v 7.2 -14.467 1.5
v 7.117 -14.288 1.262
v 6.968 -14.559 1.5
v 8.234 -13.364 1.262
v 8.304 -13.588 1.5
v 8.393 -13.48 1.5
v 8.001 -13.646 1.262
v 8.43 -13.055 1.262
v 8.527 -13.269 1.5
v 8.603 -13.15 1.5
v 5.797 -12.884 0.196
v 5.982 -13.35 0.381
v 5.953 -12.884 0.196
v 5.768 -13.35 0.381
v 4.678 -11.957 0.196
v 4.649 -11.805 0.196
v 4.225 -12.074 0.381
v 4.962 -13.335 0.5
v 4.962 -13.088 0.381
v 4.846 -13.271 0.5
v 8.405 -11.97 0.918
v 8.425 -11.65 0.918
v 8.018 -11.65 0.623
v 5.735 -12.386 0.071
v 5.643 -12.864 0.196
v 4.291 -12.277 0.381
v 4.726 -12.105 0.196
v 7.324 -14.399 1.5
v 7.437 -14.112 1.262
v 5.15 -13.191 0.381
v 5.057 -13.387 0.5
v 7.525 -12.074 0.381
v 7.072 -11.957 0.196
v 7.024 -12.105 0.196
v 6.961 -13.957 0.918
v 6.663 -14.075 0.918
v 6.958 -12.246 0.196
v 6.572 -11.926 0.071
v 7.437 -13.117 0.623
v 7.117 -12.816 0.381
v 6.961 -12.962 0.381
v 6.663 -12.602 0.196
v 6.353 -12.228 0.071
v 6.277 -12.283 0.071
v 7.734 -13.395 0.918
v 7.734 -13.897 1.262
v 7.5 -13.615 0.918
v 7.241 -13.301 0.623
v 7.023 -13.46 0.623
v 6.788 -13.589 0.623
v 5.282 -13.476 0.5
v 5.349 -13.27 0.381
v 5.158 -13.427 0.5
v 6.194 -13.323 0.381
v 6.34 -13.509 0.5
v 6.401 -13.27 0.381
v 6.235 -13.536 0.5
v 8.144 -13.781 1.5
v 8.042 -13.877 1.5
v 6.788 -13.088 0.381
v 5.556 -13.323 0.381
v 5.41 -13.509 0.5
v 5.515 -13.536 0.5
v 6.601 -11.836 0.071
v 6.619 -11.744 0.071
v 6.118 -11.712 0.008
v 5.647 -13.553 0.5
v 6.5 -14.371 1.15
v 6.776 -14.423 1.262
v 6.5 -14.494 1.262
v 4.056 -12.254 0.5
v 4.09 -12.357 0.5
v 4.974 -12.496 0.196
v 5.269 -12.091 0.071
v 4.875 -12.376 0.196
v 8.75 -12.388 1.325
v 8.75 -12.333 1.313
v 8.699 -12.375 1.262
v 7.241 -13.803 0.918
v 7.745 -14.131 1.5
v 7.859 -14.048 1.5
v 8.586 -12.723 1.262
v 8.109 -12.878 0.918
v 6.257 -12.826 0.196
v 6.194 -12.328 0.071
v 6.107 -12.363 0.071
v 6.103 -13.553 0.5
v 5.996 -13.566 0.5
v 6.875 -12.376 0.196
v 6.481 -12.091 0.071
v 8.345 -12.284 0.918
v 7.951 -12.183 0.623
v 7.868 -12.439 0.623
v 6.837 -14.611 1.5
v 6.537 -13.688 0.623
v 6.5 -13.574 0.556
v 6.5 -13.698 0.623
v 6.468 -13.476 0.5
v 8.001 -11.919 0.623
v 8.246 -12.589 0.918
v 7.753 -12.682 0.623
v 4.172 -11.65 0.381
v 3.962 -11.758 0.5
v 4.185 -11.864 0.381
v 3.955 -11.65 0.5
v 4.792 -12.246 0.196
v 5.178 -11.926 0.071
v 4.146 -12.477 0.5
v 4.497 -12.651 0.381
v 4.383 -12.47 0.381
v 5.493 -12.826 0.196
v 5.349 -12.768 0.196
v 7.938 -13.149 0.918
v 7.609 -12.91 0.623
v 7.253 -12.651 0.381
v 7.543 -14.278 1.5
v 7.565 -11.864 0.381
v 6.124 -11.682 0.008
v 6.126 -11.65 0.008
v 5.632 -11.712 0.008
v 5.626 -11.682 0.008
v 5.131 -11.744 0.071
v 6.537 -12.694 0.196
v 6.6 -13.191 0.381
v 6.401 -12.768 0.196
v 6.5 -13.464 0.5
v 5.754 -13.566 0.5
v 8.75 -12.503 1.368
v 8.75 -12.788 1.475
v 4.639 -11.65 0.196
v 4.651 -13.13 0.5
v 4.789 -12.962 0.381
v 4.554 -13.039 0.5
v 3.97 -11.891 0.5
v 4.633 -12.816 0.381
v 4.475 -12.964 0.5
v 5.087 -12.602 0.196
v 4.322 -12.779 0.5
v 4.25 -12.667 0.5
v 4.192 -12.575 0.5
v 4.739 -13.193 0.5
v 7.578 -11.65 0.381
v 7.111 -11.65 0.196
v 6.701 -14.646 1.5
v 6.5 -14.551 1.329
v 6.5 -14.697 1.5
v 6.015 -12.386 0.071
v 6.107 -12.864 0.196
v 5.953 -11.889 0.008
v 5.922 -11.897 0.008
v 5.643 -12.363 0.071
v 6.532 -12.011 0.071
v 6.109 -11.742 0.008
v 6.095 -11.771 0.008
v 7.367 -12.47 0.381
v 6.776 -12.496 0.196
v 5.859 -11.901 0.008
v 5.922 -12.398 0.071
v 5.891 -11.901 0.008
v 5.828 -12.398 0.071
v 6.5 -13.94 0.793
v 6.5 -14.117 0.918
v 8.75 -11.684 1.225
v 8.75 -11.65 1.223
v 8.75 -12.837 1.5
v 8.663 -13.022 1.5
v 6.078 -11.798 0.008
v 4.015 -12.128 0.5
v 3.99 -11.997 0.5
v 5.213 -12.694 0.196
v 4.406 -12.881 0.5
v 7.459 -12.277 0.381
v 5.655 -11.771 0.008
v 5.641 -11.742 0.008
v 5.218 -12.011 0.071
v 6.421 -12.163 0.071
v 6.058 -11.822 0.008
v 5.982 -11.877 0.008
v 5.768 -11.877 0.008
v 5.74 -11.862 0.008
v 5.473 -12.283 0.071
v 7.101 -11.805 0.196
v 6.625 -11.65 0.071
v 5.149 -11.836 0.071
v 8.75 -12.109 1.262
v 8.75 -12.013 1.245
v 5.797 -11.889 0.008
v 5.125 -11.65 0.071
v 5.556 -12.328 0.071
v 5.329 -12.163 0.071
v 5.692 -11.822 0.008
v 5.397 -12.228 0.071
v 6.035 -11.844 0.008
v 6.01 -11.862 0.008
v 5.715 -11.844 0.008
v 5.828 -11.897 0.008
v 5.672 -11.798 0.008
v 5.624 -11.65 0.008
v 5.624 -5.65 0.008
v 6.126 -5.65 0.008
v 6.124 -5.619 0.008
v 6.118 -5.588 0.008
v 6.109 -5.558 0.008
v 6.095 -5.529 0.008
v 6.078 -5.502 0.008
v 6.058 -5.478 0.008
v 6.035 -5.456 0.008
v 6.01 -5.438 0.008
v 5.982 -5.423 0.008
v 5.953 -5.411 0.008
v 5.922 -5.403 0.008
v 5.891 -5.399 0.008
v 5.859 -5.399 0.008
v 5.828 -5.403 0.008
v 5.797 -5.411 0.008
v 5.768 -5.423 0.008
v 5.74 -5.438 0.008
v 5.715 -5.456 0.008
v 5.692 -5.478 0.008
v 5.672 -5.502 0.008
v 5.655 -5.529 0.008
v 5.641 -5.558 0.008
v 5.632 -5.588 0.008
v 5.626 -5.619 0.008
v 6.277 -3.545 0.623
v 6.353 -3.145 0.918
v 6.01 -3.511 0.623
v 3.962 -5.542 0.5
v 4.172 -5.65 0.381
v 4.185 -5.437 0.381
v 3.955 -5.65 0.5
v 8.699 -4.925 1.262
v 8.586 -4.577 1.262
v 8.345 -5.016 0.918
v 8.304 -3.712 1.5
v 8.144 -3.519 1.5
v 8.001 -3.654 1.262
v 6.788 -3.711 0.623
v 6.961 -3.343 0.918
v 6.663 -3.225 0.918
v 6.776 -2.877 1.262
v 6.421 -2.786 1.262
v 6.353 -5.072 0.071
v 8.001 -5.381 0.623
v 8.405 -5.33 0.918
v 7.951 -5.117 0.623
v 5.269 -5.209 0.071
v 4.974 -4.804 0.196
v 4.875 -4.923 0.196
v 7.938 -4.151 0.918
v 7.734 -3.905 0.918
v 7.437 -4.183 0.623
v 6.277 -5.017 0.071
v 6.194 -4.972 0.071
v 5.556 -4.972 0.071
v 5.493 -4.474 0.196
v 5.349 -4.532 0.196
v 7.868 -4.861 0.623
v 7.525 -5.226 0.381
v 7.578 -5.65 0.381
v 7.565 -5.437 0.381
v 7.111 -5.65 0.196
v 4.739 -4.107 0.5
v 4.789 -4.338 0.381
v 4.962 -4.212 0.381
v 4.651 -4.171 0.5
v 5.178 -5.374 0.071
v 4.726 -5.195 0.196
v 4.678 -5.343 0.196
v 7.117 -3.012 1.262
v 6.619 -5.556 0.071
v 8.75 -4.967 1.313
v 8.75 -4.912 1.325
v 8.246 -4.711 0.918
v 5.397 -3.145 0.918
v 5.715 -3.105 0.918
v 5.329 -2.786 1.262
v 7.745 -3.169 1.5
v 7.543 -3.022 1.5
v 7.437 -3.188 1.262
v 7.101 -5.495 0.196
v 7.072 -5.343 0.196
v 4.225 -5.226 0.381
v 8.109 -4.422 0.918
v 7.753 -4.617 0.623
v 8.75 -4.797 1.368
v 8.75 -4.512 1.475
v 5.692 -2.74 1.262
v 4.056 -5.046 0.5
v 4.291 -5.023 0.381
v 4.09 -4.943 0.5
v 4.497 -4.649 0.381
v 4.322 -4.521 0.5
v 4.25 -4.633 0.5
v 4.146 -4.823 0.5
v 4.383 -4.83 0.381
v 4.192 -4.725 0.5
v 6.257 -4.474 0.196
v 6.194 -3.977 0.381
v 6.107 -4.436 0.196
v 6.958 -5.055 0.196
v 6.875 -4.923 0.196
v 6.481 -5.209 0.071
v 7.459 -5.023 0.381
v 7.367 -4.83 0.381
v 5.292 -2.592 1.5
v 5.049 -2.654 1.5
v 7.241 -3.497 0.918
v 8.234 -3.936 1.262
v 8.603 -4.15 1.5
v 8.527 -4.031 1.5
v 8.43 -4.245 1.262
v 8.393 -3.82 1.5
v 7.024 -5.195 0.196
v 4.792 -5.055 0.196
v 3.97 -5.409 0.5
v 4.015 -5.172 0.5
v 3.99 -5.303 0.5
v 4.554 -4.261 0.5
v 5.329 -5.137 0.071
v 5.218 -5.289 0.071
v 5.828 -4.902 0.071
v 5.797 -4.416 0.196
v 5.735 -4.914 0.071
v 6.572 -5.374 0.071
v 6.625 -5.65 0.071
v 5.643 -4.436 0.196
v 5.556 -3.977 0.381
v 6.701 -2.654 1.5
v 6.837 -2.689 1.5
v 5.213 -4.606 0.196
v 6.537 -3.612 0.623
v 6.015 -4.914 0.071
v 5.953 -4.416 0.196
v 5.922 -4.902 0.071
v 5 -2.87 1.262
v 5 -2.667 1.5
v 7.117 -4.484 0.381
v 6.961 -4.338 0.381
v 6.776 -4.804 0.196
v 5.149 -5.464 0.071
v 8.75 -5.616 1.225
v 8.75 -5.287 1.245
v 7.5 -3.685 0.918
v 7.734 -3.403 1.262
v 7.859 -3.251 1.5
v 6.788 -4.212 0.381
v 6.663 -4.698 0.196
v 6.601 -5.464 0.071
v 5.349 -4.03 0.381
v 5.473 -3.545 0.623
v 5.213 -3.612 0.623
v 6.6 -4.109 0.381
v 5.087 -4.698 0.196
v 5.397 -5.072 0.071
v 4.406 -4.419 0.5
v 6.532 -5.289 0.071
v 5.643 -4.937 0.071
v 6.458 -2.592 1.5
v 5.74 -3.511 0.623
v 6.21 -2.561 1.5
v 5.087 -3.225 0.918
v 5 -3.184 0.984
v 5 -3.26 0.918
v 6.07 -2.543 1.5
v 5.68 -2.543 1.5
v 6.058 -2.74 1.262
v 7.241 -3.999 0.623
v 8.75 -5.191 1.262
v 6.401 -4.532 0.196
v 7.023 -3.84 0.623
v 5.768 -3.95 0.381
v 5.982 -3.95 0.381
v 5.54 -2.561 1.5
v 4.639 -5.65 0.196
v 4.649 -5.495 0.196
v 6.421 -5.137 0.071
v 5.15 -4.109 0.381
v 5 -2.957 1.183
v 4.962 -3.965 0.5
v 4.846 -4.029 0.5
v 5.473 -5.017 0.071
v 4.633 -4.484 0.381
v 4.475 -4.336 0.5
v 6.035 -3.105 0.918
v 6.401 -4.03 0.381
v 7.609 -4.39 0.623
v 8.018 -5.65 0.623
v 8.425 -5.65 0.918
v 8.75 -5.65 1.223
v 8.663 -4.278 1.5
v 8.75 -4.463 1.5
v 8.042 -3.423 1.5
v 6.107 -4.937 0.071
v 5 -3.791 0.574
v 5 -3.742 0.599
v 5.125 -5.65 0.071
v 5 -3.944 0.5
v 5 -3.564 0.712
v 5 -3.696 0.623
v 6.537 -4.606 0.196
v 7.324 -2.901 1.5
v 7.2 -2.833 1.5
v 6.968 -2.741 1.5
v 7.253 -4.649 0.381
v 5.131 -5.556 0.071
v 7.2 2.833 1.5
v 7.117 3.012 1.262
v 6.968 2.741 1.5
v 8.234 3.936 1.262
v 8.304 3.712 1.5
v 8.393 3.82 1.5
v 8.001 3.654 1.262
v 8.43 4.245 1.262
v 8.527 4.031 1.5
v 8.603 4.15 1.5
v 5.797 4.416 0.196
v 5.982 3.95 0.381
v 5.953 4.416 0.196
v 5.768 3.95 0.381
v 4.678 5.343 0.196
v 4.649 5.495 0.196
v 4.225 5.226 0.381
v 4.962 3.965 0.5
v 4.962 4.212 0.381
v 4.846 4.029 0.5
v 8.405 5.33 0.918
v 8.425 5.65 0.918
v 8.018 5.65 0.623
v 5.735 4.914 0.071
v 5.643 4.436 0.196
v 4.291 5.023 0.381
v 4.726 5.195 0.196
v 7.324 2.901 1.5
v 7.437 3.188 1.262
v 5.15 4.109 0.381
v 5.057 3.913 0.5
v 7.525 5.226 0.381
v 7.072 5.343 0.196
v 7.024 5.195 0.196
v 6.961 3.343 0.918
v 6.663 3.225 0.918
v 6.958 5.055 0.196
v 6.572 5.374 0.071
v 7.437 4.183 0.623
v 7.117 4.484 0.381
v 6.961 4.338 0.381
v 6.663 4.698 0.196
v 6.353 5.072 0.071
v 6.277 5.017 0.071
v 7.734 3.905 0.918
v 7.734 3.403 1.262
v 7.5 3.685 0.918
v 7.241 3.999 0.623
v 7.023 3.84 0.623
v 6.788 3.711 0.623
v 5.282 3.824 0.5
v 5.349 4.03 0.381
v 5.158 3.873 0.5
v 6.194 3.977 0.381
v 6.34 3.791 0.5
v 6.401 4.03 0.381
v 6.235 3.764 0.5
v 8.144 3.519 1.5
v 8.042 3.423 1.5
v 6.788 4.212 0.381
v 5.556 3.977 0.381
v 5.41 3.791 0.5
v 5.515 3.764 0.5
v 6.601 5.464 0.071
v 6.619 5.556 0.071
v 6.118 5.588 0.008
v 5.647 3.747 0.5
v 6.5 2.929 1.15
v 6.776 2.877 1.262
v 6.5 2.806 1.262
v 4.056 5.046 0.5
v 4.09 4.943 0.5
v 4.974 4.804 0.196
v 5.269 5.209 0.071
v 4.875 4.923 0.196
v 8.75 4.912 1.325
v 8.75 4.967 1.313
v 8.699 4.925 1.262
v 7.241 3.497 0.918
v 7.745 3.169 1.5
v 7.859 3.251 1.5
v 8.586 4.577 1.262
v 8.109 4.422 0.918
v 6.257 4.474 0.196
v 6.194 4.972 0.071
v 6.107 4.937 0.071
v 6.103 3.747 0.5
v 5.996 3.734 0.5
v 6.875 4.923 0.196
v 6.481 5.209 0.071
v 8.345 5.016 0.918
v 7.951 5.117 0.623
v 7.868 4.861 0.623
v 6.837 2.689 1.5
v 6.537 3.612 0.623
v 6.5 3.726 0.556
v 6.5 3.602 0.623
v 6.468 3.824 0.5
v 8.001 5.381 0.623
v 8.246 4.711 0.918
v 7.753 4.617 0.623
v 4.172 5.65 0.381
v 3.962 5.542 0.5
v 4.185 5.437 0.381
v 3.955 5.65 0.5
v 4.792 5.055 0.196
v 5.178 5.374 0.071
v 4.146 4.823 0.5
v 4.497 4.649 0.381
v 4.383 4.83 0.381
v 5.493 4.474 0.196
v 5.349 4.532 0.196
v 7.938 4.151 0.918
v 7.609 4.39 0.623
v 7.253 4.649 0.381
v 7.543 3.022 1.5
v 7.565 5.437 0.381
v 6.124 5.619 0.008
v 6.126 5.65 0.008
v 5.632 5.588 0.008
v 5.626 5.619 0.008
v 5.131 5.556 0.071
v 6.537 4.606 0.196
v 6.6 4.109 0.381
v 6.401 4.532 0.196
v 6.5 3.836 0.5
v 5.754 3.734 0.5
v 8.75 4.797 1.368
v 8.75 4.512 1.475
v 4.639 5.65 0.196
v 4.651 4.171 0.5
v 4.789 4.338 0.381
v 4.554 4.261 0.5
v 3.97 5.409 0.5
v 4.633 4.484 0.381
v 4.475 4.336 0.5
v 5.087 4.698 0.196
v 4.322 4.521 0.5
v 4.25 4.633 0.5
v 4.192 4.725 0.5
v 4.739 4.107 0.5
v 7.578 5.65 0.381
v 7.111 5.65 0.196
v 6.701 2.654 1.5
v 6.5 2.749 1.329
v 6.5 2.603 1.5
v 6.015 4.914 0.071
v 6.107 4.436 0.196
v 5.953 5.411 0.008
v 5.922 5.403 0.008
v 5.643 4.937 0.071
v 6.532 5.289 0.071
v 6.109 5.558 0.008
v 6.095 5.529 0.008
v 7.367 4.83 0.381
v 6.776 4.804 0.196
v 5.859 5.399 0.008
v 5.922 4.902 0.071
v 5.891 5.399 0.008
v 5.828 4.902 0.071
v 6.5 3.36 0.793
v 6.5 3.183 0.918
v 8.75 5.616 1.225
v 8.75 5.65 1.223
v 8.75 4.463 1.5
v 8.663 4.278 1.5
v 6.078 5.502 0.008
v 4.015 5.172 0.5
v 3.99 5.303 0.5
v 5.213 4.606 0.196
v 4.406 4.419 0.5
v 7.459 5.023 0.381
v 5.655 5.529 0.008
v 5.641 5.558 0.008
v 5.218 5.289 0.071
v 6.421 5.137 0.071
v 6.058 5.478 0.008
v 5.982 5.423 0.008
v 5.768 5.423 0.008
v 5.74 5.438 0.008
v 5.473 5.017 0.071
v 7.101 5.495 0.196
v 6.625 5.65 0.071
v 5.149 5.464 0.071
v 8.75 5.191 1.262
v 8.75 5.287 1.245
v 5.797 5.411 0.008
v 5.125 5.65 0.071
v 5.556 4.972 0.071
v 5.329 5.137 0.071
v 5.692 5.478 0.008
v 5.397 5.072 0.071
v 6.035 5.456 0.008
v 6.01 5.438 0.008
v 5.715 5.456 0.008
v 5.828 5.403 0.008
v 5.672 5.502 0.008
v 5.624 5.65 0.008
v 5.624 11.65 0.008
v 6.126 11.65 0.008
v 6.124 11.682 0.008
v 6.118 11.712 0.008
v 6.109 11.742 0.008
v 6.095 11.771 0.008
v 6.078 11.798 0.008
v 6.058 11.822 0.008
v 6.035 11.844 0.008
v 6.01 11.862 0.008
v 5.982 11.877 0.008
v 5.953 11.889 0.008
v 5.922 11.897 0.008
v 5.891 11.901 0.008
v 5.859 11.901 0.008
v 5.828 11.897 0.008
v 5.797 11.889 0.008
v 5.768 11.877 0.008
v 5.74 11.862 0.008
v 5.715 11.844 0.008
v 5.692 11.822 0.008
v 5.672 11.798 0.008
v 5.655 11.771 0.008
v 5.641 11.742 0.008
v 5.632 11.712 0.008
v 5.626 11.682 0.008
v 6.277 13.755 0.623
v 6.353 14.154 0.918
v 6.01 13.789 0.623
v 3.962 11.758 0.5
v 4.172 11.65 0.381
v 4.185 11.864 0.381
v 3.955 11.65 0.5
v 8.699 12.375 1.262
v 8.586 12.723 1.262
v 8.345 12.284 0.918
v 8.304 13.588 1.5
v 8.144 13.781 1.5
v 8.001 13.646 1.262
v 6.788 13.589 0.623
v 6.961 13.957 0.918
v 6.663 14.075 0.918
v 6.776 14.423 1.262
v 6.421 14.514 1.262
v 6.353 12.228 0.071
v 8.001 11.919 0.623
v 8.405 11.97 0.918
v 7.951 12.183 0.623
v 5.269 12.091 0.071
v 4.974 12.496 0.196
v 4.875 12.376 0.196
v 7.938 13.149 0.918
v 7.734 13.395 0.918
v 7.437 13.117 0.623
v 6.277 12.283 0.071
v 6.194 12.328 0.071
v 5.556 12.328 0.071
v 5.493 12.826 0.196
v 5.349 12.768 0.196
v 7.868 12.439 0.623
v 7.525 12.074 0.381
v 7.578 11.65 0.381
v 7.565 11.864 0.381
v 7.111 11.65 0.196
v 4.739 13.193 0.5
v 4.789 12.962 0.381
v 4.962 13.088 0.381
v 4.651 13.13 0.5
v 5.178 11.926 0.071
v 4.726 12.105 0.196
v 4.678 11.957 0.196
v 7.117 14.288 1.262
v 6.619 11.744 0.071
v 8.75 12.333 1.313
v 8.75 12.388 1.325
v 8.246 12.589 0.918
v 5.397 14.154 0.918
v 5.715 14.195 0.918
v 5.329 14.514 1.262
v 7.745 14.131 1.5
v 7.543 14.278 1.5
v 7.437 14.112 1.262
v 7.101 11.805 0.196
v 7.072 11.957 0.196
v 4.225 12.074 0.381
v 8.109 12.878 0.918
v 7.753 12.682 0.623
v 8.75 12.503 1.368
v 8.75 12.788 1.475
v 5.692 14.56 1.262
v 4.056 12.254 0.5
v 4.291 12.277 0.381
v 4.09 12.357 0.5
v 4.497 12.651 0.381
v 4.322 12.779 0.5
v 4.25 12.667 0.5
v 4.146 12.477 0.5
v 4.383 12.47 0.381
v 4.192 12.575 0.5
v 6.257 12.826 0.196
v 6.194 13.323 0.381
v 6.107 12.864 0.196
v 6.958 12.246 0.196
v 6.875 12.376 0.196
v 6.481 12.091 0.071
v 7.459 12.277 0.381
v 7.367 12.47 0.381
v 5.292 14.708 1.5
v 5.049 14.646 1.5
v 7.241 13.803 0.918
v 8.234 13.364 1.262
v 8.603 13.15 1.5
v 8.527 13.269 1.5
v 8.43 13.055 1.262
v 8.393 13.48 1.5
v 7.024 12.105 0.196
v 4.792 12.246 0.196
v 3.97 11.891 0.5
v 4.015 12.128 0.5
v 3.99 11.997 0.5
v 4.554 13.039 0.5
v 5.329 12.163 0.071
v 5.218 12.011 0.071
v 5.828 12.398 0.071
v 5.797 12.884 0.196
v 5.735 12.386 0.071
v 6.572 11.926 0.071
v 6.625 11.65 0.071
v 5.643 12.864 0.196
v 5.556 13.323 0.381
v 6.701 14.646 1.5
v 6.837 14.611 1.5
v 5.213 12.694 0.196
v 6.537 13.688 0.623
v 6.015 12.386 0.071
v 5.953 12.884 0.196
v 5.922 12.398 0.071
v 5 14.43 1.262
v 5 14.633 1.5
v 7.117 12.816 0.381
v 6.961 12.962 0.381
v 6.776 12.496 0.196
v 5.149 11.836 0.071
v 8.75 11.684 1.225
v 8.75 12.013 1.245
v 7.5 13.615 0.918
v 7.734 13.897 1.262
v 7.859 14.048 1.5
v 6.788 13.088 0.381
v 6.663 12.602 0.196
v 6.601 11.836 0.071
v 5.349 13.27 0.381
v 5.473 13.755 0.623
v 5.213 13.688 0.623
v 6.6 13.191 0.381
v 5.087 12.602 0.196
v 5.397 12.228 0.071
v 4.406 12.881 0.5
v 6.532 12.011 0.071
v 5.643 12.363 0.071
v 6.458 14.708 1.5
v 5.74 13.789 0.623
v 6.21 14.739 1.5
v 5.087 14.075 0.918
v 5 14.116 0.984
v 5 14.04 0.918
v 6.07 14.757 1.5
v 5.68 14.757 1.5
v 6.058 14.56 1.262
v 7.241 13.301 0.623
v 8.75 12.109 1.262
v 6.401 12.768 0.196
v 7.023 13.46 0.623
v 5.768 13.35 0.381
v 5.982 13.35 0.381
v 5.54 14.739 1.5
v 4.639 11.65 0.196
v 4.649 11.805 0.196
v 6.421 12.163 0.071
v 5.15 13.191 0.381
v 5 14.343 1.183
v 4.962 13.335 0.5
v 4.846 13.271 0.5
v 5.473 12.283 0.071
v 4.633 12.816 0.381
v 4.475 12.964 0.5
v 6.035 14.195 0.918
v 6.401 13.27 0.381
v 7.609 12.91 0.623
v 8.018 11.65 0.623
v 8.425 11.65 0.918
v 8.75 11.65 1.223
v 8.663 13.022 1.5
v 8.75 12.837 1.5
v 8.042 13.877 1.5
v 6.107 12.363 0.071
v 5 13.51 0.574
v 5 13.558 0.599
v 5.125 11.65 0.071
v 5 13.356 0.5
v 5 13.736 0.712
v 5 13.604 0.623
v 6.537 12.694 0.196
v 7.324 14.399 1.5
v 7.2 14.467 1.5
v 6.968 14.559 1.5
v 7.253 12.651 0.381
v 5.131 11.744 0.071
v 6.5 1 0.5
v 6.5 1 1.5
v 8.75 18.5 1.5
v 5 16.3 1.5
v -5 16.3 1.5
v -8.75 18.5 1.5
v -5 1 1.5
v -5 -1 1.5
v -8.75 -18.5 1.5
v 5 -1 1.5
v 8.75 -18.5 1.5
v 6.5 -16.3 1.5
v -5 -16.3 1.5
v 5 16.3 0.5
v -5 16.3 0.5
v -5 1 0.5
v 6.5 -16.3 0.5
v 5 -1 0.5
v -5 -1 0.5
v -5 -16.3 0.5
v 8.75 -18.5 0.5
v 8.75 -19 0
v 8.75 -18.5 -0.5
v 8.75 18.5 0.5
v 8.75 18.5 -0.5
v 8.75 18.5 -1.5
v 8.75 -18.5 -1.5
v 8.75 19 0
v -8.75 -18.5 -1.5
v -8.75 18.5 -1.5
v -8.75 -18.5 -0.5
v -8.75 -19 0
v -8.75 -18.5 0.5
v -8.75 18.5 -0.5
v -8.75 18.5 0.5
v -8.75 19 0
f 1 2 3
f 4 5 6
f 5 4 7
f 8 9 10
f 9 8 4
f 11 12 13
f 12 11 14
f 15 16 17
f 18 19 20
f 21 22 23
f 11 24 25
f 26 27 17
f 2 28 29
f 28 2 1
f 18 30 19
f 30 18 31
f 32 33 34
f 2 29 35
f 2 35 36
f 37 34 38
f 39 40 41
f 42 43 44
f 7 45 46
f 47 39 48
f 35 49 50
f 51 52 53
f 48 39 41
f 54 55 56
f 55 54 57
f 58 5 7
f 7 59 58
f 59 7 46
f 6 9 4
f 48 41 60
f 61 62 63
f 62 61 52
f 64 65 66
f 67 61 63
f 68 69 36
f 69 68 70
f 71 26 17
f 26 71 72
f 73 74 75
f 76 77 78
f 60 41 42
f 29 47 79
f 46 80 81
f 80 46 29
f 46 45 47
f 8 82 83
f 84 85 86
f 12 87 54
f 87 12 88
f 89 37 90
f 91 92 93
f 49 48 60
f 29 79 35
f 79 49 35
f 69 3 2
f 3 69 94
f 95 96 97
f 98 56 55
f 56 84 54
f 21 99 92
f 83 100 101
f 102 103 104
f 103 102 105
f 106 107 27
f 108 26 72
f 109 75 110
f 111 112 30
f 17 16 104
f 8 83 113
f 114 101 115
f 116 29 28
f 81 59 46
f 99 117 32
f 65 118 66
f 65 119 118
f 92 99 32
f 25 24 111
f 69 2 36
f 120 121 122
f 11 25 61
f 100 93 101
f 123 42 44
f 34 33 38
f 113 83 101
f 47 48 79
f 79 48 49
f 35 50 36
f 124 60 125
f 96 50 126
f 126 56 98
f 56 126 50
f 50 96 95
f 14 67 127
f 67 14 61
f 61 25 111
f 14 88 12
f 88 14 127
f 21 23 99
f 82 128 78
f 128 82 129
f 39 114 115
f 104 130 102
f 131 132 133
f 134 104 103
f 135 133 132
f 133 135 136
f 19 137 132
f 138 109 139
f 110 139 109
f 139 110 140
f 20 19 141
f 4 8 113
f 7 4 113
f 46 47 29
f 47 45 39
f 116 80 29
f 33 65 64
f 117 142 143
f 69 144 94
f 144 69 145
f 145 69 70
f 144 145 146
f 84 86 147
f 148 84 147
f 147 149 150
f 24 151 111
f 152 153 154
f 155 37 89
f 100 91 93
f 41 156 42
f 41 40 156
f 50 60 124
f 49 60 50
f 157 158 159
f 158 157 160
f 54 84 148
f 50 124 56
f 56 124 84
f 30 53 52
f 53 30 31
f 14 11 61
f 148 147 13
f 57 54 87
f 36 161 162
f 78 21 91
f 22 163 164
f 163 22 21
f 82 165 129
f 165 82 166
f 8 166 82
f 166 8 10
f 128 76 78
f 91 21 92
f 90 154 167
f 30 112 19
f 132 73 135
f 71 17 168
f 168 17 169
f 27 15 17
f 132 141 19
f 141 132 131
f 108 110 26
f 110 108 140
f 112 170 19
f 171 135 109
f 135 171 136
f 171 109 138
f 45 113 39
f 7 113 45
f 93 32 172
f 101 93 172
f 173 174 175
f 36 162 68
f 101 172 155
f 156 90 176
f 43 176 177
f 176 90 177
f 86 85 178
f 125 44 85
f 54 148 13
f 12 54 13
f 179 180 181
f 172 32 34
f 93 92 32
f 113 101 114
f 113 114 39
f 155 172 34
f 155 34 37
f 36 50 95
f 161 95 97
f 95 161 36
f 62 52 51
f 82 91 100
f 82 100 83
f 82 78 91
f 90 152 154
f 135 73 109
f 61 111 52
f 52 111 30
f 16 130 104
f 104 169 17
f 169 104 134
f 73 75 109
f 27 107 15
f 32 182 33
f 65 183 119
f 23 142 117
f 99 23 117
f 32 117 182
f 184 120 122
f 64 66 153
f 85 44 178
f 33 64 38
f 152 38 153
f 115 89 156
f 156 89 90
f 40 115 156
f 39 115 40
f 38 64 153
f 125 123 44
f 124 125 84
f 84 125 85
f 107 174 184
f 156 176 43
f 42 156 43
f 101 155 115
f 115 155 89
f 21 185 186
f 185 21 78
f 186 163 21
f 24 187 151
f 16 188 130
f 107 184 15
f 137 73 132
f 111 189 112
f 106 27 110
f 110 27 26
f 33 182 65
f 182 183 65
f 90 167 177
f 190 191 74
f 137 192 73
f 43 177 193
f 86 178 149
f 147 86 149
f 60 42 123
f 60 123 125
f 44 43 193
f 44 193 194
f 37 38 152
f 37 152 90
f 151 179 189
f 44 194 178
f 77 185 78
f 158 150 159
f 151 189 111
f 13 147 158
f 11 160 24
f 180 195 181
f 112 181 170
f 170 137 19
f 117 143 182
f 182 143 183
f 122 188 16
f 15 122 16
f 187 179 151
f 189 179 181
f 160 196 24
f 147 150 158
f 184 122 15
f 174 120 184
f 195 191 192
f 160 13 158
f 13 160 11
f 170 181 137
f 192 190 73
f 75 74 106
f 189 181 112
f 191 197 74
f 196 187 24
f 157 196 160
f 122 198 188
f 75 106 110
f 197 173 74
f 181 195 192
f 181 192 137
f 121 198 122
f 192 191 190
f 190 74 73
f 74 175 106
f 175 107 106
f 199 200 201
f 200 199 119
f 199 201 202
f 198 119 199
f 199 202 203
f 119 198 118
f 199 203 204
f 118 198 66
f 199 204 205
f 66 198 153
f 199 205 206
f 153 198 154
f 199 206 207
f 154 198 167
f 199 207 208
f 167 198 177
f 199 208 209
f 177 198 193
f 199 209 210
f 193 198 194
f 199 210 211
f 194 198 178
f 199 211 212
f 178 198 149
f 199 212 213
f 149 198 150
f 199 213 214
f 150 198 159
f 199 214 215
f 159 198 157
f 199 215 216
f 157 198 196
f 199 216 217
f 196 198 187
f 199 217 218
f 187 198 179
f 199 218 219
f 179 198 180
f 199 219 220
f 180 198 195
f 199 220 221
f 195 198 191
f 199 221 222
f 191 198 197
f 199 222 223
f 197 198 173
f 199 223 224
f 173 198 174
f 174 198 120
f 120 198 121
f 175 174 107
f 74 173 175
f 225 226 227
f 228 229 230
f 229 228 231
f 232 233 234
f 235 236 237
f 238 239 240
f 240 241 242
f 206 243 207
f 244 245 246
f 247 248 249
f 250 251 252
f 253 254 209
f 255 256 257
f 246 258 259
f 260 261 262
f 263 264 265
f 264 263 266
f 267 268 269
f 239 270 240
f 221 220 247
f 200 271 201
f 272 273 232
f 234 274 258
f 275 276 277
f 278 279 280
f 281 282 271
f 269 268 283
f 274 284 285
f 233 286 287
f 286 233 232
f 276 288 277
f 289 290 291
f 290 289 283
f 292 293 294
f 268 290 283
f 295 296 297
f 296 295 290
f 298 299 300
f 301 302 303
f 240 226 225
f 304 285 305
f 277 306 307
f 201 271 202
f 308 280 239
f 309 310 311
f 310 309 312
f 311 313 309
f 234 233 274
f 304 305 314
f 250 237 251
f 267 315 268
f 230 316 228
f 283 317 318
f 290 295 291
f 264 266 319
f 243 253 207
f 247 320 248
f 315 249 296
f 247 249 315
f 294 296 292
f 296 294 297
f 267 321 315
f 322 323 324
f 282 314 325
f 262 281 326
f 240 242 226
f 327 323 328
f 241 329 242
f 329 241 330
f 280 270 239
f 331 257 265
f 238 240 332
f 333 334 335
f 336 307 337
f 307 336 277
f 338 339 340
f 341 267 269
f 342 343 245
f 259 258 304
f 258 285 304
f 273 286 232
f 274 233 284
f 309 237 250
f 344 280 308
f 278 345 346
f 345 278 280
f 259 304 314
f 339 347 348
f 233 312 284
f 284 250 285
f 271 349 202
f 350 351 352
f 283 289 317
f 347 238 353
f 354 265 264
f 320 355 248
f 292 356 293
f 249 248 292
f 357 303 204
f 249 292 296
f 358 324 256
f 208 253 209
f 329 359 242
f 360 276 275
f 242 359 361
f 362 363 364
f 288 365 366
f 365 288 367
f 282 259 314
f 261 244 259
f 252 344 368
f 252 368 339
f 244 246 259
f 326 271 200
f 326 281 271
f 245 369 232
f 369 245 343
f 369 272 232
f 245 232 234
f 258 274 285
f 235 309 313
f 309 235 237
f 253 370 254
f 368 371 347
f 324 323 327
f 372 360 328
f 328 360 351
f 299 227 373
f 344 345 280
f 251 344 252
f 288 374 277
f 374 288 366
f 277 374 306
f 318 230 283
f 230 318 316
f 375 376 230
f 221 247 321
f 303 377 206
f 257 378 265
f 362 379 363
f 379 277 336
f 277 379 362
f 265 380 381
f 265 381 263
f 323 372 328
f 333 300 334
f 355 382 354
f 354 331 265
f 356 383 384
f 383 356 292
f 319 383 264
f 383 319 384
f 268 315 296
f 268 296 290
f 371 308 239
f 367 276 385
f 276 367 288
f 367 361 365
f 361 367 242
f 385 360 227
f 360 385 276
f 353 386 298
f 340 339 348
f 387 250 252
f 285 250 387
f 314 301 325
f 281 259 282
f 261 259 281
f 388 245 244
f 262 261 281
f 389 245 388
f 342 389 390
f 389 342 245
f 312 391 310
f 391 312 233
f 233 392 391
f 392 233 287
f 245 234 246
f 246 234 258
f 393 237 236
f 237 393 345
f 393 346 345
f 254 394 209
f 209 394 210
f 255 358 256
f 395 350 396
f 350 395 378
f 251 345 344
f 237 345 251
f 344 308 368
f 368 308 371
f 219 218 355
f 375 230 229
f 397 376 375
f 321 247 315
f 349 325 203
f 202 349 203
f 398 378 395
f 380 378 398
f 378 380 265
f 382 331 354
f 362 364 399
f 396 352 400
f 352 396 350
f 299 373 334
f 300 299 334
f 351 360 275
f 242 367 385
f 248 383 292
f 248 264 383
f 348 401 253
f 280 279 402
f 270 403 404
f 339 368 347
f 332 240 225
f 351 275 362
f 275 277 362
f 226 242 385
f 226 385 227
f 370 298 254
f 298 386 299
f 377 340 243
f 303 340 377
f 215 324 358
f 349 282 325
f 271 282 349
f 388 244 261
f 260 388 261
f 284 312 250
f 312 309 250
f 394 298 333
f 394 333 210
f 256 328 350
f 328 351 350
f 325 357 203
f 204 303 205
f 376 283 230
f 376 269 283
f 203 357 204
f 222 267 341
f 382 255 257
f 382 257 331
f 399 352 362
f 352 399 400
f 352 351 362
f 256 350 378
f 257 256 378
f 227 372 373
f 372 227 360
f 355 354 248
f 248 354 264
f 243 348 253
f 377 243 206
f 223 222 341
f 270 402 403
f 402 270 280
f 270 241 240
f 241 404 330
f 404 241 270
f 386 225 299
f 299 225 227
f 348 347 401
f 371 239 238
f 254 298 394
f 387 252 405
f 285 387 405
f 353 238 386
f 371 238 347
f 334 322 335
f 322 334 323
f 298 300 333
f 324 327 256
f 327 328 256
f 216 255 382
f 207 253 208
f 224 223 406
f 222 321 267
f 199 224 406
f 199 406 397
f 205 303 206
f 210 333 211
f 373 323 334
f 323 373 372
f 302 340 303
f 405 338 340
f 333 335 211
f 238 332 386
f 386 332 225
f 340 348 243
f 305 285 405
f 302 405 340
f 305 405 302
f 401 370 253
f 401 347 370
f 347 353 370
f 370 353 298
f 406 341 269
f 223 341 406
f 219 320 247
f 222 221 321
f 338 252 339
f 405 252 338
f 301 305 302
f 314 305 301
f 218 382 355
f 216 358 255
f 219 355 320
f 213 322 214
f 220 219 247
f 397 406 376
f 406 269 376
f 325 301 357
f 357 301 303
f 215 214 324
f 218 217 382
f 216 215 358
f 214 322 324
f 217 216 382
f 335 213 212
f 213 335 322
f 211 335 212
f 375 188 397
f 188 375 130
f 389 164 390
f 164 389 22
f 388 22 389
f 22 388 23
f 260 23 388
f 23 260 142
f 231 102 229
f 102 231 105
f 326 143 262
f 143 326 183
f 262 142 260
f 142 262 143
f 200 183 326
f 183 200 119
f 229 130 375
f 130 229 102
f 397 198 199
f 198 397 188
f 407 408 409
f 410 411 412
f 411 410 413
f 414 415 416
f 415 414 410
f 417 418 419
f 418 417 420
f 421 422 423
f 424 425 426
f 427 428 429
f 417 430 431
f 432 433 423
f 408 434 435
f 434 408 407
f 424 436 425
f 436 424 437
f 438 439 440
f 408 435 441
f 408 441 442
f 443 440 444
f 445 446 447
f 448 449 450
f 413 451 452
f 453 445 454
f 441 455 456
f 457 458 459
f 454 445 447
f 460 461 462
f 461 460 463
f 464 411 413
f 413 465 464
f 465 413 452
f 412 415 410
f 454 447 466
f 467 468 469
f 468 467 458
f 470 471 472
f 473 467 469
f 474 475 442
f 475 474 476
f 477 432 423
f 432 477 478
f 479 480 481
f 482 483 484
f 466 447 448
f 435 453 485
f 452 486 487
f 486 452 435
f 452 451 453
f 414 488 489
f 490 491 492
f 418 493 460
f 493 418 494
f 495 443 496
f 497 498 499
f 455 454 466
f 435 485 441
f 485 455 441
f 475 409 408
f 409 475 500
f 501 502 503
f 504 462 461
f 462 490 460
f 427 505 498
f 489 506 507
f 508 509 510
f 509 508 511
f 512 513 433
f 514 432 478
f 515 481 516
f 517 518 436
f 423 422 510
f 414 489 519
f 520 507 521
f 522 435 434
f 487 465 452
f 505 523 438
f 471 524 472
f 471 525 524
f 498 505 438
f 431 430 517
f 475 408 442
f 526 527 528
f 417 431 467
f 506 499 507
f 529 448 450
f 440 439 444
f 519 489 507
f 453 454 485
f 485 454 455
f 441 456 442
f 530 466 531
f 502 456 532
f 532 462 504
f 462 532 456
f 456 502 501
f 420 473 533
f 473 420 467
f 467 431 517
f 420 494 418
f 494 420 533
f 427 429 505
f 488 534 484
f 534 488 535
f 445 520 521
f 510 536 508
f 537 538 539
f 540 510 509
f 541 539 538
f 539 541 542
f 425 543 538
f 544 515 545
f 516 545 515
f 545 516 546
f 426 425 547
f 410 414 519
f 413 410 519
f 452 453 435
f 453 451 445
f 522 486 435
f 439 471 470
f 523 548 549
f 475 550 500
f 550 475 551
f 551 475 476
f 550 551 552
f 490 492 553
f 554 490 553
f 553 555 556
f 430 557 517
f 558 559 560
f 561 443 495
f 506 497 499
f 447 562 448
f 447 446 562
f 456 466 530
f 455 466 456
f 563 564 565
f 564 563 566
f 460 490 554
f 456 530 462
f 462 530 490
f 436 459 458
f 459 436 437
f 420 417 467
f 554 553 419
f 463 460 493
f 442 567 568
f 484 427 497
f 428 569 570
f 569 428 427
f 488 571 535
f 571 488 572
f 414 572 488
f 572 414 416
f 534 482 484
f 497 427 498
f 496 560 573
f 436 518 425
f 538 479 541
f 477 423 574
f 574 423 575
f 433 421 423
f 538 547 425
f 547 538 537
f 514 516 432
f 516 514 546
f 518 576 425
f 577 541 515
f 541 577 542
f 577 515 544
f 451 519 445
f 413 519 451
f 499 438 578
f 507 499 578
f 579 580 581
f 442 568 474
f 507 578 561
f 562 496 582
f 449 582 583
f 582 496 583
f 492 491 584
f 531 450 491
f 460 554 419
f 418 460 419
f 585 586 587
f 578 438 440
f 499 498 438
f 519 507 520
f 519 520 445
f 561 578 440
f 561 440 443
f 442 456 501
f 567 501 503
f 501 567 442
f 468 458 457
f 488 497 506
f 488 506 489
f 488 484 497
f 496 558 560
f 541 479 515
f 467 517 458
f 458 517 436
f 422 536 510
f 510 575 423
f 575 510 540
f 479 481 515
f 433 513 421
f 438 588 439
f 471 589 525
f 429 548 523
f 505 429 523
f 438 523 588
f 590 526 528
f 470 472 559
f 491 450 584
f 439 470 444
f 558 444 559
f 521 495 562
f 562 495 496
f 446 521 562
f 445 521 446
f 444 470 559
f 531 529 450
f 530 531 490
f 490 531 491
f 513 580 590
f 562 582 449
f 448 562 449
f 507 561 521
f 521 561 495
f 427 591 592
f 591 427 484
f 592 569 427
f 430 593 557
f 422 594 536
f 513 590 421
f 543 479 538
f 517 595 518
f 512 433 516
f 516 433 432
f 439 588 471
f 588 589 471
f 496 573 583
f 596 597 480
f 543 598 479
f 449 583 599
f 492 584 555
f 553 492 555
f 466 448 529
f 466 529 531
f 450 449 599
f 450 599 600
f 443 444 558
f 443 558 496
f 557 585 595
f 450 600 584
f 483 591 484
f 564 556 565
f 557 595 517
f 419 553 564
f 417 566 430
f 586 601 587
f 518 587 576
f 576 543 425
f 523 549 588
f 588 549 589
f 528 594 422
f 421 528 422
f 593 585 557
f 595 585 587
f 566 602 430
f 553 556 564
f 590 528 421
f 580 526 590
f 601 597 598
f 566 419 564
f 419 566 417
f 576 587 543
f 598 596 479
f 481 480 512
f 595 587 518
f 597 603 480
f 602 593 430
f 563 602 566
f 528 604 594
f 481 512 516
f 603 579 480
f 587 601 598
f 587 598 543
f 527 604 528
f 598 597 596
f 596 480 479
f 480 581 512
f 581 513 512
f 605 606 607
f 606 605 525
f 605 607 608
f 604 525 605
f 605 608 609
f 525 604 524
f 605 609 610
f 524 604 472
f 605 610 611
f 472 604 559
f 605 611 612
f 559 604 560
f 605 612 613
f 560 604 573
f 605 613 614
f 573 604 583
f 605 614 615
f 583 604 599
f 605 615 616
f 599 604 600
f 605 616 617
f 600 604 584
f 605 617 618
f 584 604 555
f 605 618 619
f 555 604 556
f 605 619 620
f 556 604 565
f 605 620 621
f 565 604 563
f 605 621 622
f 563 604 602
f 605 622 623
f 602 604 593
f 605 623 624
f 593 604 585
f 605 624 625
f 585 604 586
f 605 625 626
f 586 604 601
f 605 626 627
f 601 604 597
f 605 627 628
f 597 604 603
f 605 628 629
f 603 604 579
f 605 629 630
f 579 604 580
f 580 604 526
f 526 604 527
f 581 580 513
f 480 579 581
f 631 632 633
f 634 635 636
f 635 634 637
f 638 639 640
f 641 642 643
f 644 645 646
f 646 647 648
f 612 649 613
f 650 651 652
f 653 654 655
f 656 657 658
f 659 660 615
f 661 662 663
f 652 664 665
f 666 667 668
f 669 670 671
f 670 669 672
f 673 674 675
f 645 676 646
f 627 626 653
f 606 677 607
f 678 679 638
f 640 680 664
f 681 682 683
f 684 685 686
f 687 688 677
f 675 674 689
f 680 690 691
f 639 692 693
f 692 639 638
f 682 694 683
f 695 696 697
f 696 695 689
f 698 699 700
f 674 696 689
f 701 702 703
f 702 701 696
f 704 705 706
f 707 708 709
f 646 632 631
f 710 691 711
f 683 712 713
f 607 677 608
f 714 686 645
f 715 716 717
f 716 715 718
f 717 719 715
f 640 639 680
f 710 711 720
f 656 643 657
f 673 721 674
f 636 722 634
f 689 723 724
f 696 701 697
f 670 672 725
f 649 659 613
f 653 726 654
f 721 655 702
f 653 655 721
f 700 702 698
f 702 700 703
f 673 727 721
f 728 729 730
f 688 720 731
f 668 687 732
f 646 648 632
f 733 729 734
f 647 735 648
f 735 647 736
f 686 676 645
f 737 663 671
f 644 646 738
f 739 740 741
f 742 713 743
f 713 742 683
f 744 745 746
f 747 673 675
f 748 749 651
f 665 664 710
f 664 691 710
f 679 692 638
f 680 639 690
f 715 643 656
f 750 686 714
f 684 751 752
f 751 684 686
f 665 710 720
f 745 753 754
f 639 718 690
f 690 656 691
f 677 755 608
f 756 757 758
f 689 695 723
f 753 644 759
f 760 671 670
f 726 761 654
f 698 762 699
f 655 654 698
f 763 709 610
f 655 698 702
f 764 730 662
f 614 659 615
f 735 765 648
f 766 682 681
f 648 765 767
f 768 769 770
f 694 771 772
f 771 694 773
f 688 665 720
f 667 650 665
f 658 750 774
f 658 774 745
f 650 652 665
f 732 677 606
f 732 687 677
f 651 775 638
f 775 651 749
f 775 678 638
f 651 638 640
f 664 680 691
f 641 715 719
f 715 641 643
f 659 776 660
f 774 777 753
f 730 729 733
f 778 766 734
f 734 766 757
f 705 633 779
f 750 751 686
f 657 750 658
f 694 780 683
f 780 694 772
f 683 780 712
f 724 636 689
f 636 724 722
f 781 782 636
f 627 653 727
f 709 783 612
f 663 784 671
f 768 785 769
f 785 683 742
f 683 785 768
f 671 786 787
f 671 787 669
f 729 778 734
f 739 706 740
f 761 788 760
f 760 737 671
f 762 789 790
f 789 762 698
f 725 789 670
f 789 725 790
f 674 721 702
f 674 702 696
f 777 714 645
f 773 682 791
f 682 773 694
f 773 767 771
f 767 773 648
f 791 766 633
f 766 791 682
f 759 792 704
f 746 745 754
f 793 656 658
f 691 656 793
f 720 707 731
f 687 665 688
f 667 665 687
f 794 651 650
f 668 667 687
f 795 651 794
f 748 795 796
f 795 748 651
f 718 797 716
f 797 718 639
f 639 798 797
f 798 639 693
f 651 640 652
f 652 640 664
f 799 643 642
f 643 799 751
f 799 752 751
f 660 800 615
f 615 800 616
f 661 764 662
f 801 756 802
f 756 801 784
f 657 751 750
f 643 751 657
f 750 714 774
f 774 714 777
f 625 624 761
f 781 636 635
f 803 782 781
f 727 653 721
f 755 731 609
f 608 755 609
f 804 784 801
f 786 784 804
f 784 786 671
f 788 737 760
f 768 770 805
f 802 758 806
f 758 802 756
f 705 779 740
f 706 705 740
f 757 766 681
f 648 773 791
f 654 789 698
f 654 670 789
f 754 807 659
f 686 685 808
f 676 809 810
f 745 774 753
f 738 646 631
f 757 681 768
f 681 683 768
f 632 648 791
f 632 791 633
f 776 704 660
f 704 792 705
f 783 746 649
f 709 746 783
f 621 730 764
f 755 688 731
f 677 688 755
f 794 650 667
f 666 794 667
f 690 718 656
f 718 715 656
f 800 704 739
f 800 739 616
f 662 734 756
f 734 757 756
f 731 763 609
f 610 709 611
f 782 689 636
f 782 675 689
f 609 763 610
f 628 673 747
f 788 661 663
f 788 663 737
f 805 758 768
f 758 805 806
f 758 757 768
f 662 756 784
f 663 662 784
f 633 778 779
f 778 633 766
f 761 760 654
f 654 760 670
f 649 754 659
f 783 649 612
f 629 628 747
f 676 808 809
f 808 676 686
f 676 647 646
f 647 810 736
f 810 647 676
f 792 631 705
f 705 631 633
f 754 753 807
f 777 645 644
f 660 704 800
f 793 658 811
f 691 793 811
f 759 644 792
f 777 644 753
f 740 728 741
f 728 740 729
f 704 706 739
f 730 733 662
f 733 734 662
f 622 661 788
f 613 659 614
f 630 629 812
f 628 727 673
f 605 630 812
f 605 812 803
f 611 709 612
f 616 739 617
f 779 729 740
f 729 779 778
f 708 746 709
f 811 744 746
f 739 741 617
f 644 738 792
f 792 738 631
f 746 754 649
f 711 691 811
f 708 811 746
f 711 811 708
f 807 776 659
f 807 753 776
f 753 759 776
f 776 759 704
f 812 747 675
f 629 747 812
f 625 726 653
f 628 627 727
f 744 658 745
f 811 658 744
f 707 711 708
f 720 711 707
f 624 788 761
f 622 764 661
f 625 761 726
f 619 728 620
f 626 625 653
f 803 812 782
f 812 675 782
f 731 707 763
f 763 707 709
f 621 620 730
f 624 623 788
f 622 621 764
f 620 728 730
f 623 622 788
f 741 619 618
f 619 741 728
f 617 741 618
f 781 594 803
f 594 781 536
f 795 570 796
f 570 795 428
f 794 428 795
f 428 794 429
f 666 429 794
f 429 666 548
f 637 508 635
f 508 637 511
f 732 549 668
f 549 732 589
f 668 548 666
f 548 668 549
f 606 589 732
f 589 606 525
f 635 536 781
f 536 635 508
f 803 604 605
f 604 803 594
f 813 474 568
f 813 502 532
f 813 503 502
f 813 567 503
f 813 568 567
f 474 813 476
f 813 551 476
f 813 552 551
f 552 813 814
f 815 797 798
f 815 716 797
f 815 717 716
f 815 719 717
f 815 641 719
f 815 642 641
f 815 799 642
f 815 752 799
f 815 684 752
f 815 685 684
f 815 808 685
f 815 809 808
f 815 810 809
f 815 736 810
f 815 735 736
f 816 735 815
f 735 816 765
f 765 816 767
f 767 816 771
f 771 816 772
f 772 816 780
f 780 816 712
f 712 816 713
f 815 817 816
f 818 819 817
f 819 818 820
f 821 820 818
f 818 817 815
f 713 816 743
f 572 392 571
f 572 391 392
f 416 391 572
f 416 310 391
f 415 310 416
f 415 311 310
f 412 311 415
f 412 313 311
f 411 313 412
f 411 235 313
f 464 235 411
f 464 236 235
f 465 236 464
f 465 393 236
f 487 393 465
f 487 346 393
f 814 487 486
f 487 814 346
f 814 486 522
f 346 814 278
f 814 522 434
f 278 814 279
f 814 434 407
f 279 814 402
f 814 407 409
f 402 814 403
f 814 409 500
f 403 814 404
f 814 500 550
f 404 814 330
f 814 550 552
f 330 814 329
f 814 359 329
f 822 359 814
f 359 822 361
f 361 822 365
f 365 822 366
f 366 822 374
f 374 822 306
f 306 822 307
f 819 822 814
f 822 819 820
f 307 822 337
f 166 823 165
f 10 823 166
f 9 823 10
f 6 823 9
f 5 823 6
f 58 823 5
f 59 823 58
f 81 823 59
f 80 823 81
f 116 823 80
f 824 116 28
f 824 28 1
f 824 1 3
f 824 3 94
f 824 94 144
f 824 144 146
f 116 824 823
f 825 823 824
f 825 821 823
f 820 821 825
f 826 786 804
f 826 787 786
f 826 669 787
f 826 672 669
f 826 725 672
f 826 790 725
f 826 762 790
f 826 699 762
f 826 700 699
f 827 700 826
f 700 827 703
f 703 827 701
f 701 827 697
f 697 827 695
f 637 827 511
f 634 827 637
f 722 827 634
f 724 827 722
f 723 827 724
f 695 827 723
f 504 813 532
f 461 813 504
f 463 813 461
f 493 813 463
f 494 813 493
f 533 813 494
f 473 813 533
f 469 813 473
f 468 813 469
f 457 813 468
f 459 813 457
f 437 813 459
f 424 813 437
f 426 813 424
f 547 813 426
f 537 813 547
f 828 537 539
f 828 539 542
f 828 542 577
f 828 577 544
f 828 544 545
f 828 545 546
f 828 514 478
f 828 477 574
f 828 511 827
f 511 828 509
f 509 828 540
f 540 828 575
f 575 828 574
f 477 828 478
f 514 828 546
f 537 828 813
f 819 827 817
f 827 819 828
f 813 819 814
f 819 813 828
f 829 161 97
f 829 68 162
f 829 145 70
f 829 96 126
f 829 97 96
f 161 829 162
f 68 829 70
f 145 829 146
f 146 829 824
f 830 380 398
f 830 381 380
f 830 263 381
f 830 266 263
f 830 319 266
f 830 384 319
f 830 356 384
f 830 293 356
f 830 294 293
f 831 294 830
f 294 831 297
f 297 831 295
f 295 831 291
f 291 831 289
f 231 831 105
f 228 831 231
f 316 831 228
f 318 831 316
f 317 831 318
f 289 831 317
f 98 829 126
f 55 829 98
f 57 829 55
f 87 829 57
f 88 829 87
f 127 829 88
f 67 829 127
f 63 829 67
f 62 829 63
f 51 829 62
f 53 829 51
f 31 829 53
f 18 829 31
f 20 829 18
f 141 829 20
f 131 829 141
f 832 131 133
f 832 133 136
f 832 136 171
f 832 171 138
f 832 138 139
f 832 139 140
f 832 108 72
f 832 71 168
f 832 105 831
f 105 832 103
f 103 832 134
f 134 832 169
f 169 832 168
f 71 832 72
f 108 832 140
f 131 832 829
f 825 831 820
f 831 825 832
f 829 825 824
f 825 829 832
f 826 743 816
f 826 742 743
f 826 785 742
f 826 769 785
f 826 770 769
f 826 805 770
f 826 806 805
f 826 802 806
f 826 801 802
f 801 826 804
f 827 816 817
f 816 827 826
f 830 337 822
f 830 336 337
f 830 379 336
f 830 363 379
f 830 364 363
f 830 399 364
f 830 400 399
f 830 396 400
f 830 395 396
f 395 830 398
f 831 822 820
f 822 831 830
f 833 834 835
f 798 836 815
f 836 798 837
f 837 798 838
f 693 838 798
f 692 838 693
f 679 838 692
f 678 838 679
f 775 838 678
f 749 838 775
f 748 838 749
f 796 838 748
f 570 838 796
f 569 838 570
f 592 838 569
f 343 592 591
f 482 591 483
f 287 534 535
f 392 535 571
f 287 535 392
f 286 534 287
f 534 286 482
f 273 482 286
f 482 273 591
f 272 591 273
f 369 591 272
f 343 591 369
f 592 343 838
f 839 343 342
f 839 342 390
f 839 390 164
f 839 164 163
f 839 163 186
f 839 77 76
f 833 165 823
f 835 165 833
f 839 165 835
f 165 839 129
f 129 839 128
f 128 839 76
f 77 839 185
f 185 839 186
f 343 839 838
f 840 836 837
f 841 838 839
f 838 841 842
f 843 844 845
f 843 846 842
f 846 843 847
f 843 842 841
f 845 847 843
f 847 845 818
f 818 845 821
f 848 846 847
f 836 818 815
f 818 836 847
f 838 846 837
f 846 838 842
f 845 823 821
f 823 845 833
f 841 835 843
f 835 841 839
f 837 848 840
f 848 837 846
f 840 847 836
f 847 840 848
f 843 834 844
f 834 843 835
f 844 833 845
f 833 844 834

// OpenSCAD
/**

**/
xs=17.5;
ys=37;
zs=3;
fn=20;

difference() {
    cube([xs, ys, zs], center=true);
    union() {
        translate([.75, 3, 1]) {
            cube([11.5,4,1], center=true);
        }
        translate([.75, -ys/2+4.2, 1]) {
            cube([11.5,4,1], center=true);
        }
         translate([0,15.3/2+1, 1]) {
            cube([10, 15.3, 1], center=true);
        }
        translate([0, -15.3/2-1, 1]) {
            cube([10, 15.3, 1], center=true);
        }
        d=8;
        h=6;
        translate([17.5/4+1.5, -15.3/2-1, d/2]) {
            rod(ht=h, diam=d, $fn=fn);
        }
        translate([17.5/4+1.5,+15.3/2+1,d/2]) {
            rod(ht=h, diam=d, $fn=fn);
        }
    }
}

translate([0, ys/2-1, 0]) {
    rotate([0, 90, 0]) {
        cylinder(d=zs,h=xs, center=true, $fn=4);
    }
}
translate([0, -ys/2+1, 0]) {
    rotate([0, 90, 0]) {
        cylinder(d=zs,h=xs, center=true, $fn=4);
    }
}

module rod(ht=8, diam=6, fn=50) {

    translate([0, -ht/2, 0]) {
        sphere(d=diam, $fn=fn);
    }
    translate([0, ht/2, 0]) {
        sphere(d=diam, $fn=fn);
    }
    rotate([90, 0, 0]) {
        cylinder(d=diam, h=ht, center=true, $fn=fn);
    }
}
